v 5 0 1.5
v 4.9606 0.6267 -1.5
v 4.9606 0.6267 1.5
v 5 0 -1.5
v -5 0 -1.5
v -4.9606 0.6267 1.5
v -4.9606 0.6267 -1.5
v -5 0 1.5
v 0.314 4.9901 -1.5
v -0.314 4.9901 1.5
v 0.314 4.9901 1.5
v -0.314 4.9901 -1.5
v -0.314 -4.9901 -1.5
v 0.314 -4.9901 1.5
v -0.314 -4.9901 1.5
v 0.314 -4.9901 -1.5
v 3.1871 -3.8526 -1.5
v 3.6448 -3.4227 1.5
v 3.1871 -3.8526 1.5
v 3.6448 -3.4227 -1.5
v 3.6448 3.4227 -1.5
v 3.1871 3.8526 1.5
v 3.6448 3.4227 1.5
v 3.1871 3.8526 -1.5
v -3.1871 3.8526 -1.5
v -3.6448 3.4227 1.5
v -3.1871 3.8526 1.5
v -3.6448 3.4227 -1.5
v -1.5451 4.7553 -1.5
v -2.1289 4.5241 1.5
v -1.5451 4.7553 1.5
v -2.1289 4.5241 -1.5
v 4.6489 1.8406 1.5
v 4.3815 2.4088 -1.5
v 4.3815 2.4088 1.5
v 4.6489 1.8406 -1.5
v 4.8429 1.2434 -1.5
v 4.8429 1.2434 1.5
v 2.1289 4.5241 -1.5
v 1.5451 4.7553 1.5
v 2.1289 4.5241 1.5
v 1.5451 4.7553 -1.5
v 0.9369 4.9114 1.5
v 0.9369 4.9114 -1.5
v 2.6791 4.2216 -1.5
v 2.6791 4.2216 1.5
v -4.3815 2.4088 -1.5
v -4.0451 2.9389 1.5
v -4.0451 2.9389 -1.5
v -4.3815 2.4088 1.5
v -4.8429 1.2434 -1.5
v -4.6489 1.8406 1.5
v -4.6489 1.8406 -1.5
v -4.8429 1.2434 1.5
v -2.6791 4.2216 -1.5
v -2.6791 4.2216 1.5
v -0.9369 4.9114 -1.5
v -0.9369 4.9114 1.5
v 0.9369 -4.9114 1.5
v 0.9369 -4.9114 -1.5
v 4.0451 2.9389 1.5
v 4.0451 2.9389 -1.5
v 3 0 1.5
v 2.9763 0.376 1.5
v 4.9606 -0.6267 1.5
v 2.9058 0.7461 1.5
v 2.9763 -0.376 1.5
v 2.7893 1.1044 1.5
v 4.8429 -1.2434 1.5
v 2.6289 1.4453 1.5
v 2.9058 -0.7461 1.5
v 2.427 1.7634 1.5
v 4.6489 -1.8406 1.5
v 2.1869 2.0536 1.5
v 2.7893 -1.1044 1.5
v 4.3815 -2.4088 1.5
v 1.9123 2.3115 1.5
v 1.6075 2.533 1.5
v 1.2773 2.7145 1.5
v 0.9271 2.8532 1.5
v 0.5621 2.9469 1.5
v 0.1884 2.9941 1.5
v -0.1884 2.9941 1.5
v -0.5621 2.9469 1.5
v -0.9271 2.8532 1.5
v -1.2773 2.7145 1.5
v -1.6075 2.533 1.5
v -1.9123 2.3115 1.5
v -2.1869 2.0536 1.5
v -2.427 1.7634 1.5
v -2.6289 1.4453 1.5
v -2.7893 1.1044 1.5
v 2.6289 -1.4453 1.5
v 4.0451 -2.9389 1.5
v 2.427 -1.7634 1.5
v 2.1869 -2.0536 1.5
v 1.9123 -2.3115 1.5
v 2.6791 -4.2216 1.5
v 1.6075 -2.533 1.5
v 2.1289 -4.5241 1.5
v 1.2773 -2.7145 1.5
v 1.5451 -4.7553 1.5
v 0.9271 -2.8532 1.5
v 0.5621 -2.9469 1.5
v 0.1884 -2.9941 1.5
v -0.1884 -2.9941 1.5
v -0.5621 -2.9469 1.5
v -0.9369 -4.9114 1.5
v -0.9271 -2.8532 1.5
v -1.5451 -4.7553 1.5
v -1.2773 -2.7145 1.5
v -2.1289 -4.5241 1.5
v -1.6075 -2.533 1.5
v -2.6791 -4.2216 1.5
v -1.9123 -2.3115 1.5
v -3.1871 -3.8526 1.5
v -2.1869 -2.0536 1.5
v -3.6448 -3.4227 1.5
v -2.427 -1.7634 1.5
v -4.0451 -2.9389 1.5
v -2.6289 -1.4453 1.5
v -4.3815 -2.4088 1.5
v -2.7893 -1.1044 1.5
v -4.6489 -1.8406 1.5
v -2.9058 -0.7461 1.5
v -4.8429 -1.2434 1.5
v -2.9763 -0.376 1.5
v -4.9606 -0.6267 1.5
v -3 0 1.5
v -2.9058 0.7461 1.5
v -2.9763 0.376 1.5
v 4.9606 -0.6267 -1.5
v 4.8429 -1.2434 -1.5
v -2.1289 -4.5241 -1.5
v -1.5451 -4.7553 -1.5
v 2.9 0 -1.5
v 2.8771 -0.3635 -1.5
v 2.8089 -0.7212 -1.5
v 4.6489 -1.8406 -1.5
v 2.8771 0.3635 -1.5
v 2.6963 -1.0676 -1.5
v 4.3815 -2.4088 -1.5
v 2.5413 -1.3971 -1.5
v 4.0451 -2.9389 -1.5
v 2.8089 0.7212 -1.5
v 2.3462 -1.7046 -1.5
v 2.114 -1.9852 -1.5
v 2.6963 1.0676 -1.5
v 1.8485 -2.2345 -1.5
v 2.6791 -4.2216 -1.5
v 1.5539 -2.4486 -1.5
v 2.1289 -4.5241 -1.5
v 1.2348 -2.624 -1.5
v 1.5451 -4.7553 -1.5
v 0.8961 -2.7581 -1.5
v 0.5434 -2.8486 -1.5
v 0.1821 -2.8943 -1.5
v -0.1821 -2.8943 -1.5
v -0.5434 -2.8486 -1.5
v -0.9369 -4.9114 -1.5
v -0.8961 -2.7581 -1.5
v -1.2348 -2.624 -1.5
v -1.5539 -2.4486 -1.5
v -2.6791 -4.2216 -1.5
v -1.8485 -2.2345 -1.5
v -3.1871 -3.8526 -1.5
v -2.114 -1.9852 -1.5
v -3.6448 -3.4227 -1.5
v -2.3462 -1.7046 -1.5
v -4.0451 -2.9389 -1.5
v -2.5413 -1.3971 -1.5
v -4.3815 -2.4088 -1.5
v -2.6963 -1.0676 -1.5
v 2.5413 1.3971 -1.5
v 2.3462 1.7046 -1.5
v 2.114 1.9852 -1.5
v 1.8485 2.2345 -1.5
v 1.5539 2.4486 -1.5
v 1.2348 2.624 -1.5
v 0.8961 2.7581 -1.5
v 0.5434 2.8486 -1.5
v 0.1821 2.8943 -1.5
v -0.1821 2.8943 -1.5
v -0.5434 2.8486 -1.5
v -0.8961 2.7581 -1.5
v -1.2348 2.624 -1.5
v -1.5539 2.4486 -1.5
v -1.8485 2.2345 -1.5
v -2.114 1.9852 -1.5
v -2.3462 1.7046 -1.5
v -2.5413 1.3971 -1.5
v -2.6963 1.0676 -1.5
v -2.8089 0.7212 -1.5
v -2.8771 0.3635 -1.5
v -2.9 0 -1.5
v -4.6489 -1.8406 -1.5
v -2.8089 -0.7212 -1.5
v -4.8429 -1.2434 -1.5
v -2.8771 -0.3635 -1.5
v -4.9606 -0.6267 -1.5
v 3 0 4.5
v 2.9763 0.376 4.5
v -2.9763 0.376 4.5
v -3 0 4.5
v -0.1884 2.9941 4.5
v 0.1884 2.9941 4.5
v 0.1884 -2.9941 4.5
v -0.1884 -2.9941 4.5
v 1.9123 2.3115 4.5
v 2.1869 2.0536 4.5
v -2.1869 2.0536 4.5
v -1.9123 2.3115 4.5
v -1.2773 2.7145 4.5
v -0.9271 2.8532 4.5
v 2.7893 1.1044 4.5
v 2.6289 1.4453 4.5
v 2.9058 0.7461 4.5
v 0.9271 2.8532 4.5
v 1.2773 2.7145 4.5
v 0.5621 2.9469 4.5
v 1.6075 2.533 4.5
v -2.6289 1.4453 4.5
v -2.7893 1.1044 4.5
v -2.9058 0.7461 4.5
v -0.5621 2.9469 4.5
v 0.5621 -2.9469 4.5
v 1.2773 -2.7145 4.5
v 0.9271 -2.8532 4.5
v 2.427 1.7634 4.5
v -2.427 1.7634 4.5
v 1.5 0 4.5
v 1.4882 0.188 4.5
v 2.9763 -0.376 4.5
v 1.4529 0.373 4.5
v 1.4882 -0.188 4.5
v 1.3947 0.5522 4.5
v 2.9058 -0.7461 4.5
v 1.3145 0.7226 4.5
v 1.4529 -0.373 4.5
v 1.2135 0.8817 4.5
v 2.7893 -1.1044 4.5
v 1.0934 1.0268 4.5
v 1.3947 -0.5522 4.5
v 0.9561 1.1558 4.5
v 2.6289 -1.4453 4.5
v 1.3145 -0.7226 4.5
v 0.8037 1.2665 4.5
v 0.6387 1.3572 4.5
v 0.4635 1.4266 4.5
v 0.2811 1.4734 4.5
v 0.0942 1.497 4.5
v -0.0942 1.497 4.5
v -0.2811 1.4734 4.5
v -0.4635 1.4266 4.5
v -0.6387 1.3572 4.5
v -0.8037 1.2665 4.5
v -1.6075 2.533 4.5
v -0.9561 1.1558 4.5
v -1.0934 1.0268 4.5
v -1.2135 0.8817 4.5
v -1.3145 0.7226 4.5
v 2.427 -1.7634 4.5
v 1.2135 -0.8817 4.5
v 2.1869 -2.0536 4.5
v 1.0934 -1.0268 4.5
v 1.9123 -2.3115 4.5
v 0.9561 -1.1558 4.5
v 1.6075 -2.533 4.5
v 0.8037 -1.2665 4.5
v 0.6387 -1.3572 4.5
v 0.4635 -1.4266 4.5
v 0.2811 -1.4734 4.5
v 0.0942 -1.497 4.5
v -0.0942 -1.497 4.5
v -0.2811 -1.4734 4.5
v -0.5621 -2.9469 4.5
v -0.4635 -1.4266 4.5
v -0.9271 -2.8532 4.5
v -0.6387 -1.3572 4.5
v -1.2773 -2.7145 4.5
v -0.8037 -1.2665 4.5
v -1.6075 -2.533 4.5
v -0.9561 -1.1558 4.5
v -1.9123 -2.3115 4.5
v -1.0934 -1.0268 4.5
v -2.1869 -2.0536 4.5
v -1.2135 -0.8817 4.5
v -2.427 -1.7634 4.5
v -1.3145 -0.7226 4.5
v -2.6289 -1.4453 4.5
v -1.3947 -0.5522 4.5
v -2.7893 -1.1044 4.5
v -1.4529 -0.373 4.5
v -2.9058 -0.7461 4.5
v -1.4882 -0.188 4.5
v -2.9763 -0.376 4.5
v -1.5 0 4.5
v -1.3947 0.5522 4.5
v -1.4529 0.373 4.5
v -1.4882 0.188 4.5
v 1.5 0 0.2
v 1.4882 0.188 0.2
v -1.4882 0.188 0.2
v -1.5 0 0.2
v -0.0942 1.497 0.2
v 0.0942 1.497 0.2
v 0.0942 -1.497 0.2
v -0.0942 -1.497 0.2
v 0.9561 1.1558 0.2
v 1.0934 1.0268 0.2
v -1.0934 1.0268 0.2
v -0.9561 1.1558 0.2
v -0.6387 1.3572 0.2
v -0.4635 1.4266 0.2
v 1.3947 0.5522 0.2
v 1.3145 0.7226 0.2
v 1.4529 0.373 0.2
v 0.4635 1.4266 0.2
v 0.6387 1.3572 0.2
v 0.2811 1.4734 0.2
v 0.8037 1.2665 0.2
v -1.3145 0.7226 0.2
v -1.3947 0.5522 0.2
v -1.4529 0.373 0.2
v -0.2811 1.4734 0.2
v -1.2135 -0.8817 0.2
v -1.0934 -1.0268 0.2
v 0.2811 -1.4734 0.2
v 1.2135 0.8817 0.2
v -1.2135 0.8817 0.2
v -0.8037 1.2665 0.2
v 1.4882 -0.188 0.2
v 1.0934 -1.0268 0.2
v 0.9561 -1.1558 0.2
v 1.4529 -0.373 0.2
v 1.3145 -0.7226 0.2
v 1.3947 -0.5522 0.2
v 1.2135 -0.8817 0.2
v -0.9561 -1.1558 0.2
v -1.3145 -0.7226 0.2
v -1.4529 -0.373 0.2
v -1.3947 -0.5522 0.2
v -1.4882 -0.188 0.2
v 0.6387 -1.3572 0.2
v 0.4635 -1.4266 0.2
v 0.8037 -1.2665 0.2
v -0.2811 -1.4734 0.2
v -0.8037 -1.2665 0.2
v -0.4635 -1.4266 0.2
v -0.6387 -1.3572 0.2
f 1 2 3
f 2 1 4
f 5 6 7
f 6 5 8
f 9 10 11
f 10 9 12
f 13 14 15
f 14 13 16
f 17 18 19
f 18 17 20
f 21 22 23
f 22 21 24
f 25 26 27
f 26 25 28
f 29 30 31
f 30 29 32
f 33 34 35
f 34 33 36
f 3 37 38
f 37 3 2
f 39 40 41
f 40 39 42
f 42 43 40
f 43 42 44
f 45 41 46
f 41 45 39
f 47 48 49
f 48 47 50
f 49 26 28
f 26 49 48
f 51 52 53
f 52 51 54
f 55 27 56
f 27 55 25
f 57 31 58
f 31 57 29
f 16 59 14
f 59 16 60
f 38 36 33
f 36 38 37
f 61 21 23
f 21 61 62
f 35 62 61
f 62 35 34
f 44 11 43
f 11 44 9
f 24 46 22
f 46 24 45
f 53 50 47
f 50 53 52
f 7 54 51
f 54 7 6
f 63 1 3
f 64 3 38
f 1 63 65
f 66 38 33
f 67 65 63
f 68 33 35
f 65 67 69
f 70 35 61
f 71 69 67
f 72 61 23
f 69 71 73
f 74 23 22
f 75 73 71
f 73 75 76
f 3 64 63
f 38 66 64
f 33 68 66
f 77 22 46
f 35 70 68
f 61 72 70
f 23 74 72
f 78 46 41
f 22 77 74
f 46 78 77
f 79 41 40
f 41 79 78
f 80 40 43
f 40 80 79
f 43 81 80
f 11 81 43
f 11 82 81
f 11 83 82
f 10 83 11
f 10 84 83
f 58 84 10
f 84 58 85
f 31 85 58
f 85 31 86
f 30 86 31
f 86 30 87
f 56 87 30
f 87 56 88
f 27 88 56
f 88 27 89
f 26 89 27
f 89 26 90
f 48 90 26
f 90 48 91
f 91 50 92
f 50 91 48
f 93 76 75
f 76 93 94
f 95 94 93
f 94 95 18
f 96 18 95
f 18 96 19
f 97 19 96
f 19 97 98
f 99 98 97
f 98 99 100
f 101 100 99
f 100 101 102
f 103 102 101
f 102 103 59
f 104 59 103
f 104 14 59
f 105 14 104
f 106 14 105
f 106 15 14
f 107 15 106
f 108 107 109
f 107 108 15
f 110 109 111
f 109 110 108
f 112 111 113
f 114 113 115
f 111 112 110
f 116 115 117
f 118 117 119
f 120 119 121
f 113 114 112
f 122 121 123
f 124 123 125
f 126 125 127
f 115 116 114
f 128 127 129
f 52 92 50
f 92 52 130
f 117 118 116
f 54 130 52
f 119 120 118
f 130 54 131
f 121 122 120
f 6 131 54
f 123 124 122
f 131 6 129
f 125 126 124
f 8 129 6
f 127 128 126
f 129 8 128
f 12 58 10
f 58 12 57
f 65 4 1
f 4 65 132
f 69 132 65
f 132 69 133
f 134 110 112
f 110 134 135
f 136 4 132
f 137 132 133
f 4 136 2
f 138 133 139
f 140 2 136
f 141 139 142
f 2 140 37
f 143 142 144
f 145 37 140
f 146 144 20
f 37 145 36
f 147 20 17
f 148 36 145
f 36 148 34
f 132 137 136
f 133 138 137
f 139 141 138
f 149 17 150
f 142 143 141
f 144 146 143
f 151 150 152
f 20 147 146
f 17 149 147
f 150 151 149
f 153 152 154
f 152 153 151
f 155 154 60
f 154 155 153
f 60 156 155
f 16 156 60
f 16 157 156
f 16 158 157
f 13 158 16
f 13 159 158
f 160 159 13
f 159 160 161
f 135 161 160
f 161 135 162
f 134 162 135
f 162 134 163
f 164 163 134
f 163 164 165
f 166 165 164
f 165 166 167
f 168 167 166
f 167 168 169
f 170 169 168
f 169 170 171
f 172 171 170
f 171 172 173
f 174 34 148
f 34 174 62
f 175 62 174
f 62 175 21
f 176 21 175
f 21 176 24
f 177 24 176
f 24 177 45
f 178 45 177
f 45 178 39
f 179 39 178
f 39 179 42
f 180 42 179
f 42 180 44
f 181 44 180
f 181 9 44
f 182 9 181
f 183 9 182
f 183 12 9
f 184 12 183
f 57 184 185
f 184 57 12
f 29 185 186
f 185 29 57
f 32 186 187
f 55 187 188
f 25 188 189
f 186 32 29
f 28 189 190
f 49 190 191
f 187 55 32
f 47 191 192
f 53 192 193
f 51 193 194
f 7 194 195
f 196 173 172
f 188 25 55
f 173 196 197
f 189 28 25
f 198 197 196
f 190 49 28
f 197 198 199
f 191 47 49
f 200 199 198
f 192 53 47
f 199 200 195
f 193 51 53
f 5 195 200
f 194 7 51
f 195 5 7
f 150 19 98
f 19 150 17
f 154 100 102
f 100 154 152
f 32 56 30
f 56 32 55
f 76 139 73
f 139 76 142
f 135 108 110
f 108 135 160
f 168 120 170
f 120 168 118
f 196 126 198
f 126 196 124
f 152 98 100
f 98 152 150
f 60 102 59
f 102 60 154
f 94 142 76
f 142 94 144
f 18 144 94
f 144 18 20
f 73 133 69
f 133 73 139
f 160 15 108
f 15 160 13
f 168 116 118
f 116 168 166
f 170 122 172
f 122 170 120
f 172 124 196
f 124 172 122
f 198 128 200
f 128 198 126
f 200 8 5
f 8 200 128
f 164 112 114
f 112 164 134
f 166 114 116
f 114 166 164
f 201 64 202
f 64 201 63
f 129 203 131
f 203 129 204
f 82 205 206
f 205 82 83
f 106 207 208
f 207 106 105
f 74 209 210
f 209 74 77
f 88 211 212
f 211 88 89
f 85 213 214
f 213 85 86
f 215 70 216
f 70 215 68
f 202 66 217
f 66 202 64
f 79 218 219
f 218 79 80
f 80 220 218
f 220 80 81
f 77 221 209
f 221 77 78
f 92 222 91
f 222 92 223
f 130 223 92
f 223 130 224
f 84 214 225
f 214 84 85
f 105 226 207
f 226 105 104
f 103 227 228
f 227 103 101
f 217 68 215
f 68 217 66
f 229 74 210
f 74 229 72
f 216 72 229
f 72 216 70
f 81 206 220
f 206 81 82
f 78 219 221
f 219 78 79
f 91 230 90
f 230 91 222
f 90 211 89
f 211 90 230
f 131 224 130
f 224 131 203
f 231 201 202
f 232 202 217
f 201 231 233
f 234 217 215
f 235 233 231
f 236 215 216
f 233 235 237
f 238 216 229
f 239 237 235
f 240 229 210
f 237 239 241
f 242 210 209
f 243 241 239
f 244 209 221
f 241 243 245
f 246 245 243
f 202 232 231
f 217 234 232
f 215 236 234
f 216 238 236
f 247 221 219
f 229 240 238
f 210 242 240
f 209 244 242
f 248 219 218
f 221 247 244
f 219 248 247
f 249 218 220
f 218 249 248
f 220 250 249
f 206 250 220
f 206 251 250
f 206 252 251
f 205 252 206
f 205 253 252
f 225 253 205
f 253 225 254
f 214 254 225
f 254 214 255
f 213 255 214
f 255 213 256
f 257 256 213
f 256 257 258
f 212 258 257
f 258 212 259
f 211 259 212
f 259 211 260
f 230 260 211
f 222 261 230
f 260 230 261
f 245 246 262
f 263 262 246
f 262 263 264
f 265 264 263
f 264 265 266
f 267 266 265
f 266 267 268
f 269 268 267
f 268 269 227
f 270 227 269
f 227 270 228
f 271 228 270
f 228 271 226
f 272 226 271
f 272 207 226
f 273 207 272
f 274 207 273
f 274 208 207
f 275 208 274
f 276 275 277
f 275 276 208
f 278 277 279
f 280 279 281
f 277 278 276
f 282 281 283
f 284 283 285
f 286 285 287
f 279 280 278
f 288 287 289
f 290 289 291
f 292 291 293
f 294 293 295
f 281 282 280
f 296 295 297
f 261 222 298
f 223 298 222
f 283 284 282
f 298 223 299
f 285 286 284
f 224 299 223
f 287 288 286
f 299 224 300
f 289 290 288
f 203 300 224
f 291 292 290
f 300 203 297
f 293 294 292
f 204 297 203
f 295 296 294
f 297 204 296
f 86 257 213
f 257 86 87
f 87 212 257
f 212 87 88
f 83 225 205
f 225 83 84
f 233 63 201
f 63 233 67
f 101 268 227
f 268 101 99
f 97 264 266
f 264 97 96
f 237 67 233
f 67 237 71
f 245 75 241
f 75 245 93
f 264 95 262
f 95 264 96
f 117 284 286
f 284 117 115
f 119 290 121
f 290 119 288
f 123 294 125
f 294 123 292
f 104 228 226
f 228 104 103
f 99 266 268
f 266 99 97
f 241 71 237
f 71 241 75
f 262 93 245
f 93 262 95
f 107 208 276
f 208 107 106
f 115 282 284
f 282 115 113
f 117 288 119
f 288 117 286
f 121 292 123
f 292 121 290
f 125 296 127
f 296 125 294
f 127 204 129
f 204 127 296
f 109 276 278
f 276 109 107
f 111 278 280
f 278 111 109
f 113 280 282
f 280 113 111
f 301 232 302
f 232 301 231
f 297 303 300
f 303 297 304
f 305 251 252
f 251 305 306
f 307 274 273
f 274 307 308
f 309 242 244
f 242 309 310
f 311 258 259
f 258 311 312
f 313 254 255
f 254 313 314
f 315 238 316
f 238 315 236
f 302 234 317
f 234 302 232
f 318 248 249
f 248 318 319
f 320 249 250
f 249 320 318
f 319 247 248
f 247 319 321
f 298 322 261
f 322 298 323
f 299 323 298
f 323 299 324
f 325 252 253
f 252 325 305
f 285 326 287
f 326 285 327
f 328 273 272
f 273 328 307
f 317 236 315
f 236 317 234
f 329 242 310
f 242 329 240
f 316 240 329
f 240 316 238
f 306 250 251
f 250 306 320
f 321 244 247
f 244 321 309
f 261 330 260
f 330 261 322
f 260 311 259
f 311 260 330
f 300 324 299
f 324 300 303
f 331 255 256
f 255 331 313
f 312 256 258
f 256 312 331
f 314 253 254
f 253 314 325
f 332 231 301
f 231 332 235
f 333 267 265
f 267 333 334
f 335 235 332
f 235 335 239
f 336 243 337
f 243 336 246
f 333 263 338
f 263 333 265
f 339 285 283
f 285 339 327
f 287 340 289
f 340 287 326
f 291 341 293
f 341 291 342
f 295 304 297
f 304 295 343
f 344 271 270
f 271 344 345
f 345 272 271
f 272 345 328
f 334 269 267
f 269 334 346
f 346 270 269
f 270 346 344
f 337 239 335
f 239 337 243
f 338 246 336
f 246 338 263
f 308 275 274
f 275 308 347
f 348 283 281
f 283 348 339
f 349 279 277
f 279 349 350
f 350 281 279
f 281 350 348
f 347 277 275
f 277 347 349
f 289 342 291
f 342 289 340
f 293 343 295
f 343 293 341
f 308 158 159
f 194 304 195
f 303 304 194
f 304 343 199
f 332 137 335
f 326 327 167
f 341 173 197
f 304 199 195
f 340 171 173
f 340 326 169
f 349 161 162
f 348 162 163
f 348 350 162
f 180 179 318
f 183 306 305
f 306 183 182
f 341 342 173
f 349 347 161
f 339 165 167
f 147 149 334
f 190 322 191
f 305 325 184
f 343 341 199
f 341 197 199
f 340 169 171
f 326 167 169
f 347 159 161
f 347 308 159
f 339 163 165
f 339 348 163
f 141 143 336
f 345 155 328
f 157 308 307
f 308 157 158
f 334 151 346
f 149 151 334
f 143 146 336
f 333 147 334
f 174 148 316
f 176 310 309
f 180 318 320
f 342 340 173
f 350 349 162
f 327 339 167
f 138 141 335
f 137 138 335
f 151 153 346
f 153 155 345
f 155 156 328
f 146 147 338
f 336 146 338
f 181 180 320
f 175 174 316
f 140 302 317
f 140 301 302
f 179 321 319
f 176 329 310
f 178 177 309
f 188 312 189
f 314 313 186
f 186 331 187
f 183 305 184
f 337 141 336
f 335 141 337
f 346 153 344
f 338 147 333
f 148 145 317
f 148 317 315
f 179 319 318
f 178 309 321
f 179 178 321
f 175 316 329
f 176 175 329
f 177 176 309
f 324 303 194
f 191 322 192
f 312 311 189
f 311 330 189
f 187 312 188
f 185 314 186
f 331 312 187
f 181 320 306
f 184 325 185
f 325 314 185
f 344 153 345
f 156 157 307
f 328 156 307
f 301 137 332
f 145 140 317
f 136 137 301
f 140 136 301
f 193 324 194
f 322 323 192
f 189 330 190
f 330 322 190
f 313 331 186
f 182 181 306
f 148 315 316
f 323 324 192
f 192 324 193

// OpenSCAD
$fn = 50;


difference() {
	union() {
		translate(v = [0, 0, -1.5000000000]) {
			rotate(a = [0, 0, 0]) {
				cylinder(h = 3, r = 5.0000000000);
			}
		}
		translate(v = [0, 0, -1.5000000000]) {
			rotate(a = [0, 0, 0]) {
				cylinder(h = 6, r = 3.0000000000);
			}
		}
	}
	union() {
		translate(v = [0, 0, -125.0000000000]) {
			rotate(a = [0, 0, 0]) {
				cylinder(h = 250, r = 1.5000000000);
			}
		}
		#translate(v = [0, 0, 0.2000000000]) {
			rotate(a = [0, 180, 0]) {
				cylinder(h = 1.7000000000, r1 = 1.5000000000, r2 = 2.9000000000);
			}
		}
		#translate(v = [0, 0, 4.5000000000]) {
			rotate(a = [0, 180, 0]) {
				cylinder(h = 6, r = 1.5000000000);
			}
		}
	}
}
